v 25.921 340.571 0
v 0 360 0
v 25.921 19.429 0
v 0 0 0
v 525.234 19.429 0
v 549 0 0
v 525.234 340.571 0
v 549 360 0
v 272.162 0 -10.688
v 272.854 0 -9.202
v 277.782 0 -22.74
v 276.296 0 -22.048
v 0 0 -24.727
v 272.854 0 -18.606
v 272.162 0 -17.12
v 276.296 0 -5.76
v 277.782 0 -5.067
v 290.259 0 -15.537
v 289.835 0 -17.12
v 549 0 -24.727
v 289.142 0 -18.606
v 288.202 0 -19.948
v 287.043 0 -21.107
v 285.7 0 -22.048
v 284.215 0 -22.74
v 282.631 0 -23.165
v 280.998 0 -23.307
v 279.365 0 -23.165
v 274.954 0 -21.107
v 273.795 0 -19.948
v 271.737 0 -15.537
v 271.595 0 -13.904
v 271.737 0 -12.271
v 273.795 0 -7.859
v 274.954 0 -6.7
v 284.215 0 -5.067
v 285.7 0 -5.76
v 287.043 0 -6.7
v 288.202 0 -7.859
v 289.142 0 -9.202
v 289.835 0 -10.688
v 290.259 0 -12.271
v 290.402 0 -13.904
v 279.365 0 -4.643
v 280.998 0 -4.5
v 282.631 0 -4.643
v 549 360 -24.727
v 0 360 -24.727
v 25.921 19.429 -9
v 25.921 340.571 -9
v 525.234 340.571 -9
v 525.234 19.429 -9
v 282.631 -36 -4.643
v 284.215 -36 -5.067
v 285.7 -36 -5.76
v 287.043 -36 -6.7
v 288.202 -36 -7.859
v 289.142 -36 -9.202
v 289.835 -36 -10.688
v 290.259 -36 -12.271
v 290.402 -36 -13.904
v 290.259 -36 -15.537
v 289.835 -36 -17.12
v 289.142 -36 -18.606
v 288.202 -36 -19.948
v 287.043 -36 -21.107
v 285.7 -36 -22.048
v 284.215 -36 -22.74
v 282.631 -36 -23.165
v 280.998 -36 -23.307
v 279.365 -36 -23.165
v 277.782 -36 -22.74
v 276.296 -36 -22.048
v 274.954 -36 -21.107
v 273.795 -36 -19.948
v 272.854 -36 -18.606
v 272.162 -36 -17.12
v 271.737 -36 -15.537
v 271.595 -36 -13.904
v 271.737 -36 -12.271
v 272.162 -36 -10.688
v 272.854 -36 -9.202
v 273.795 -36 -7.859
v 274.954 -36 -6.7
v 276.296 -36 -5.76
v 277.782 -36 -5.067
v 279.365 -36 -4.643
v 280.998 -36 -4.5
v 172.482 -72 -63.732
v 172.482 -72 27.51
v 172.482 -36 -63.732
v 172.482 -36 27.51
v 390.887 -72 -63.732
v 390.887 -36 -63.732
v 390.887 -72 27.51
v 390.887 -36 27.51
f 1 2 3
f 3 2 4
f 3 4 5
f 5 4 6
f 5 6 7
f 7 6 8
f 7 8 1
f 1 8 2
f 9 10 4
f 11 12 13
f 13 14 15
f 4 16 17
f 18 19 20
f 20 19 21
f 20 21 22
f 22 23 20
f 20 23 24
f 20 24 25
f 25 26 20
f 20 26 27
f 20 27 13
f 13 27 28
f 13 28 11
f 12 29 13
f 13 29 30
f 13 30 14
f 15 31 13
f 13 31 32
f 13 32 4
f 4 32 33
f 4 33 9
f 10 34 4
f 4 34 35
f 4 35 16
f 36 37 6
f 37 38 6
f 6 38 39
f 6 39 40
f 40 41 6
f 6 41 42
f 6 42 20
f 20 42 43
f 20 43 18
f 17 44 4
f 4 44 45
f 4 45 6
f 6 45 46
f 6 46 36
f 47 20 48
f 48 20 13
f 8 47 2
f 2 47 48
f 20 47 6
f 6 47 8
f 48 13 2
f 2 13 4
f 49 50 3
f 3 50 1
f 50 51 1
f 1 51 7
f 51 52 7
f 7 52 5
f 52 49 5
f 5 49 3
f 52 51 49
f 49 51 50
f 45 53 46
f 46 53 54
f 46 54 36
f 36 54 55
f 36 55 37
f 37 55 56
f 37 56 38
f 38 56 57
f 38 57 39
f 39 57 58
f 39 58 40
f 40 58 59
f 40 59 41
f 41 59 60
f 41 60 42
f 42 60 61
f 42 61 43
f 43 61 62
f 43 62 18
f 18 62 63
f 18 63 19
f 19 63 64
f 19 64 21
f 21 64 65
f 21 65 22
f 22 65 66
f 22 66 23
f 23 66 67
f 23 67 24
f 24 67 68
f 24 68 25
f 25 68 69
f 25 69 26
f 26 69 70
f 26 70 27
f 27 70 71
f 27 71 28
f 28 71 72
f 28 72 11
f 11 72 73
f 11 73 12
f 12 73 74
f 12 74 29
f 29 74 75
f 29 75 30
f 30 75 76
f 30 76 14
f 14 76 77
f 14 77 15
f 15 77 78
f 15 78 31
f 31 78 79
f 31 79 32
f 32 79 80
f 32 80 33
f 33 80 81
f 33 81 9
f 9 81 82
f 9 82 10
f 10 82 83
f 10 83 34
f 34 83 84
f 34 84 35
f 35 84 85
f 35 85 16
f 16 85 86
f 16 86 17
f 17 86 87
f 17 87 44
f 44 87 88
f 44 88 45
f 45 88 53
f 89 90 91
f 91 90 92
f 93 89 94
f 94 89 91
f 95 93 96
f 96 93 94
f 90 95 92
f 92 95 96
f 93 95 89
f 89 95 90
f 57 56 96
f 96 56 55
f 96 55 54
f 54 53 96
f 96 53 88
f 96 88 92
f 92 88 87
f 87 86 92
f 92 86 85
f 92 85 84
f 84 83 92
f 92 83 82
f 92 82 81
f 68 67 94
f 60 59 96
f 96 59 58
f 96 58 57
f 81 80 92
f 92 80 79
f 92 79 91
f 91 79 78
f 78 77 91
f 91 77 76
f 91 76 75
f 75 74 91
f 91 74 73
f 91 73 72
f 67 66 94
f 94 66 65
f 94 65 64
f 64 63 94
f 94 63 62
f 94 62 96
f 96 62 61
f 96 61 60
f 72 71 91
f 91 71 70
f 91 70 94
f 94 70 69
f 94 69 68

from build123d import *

# Parameters (mm, degrees)
CROQUIS1_W              = 24.727272727
CROQUIS1_H              = 360
SALIENTE_EXTRUIR1_DEPTH = 549
CROQUIS3_W              = 499.313479992
CROQUIS3_H              = 321.141187852
CORTAR_EXTRUIR1_DEPTH   = 9
CROQUIS4_R              = 9.403689311
SALIENTE_EXTRUIR2_DEPTH = 36
CROQUIS5_W              = 218.404745205
CROQUIS5_H              = 91.241456057
SALIENTE_EXTRUIR3_DEPTH = 36


with BuildPart() as part:
    # Croquis1 → Saliente-Extruir1 (new body)
    with BuildSketch(Plane(origin=(0, 0, 0), x_dir=(0, 0, -1), z_dir=(1, 0, 0))):
        with Locations((12.363636364, 180)):
            Rectangle(CROQUIS1_W, CROQUIS1_H)
    extrude(amount=SALIENTE_EXTRUIR1_DEPTH)

    # Croquis3 → Cortar-Extruir1 (cut)
    with BuildSketch(Plane.XY):
        with Locations((275.577654993, 180)):
            Rectangle(CROQUIS3_W, CROQUIS3_H)
    extrude(amount=-CORTAR_EXTRUIR1_DEPTH, mode=Mode.SUBTRACT)

    # Croquis4 → Saliente-Extruir2 (add)
    with BuildSketch(Plane.XZ):
        with Locations((280.998241646, -13.903750832)):
            Circle(CROQUIS4_R)
    extrude(amount=SALIENTE_EXTRUIR2_DEPTH)

    # Croquis5 → Saliente-Extruir3 (add)
    with BuildSketch(Plane.XZ.offset(36)):
        with Locations((281.684366619, -18.111129658)):
            Rectangle(CROQUIS5_W, CROQUIS5_H)
    extrude(amount=SALIENTE_EXTRUIR3_DEPTH)


solid = part.part
